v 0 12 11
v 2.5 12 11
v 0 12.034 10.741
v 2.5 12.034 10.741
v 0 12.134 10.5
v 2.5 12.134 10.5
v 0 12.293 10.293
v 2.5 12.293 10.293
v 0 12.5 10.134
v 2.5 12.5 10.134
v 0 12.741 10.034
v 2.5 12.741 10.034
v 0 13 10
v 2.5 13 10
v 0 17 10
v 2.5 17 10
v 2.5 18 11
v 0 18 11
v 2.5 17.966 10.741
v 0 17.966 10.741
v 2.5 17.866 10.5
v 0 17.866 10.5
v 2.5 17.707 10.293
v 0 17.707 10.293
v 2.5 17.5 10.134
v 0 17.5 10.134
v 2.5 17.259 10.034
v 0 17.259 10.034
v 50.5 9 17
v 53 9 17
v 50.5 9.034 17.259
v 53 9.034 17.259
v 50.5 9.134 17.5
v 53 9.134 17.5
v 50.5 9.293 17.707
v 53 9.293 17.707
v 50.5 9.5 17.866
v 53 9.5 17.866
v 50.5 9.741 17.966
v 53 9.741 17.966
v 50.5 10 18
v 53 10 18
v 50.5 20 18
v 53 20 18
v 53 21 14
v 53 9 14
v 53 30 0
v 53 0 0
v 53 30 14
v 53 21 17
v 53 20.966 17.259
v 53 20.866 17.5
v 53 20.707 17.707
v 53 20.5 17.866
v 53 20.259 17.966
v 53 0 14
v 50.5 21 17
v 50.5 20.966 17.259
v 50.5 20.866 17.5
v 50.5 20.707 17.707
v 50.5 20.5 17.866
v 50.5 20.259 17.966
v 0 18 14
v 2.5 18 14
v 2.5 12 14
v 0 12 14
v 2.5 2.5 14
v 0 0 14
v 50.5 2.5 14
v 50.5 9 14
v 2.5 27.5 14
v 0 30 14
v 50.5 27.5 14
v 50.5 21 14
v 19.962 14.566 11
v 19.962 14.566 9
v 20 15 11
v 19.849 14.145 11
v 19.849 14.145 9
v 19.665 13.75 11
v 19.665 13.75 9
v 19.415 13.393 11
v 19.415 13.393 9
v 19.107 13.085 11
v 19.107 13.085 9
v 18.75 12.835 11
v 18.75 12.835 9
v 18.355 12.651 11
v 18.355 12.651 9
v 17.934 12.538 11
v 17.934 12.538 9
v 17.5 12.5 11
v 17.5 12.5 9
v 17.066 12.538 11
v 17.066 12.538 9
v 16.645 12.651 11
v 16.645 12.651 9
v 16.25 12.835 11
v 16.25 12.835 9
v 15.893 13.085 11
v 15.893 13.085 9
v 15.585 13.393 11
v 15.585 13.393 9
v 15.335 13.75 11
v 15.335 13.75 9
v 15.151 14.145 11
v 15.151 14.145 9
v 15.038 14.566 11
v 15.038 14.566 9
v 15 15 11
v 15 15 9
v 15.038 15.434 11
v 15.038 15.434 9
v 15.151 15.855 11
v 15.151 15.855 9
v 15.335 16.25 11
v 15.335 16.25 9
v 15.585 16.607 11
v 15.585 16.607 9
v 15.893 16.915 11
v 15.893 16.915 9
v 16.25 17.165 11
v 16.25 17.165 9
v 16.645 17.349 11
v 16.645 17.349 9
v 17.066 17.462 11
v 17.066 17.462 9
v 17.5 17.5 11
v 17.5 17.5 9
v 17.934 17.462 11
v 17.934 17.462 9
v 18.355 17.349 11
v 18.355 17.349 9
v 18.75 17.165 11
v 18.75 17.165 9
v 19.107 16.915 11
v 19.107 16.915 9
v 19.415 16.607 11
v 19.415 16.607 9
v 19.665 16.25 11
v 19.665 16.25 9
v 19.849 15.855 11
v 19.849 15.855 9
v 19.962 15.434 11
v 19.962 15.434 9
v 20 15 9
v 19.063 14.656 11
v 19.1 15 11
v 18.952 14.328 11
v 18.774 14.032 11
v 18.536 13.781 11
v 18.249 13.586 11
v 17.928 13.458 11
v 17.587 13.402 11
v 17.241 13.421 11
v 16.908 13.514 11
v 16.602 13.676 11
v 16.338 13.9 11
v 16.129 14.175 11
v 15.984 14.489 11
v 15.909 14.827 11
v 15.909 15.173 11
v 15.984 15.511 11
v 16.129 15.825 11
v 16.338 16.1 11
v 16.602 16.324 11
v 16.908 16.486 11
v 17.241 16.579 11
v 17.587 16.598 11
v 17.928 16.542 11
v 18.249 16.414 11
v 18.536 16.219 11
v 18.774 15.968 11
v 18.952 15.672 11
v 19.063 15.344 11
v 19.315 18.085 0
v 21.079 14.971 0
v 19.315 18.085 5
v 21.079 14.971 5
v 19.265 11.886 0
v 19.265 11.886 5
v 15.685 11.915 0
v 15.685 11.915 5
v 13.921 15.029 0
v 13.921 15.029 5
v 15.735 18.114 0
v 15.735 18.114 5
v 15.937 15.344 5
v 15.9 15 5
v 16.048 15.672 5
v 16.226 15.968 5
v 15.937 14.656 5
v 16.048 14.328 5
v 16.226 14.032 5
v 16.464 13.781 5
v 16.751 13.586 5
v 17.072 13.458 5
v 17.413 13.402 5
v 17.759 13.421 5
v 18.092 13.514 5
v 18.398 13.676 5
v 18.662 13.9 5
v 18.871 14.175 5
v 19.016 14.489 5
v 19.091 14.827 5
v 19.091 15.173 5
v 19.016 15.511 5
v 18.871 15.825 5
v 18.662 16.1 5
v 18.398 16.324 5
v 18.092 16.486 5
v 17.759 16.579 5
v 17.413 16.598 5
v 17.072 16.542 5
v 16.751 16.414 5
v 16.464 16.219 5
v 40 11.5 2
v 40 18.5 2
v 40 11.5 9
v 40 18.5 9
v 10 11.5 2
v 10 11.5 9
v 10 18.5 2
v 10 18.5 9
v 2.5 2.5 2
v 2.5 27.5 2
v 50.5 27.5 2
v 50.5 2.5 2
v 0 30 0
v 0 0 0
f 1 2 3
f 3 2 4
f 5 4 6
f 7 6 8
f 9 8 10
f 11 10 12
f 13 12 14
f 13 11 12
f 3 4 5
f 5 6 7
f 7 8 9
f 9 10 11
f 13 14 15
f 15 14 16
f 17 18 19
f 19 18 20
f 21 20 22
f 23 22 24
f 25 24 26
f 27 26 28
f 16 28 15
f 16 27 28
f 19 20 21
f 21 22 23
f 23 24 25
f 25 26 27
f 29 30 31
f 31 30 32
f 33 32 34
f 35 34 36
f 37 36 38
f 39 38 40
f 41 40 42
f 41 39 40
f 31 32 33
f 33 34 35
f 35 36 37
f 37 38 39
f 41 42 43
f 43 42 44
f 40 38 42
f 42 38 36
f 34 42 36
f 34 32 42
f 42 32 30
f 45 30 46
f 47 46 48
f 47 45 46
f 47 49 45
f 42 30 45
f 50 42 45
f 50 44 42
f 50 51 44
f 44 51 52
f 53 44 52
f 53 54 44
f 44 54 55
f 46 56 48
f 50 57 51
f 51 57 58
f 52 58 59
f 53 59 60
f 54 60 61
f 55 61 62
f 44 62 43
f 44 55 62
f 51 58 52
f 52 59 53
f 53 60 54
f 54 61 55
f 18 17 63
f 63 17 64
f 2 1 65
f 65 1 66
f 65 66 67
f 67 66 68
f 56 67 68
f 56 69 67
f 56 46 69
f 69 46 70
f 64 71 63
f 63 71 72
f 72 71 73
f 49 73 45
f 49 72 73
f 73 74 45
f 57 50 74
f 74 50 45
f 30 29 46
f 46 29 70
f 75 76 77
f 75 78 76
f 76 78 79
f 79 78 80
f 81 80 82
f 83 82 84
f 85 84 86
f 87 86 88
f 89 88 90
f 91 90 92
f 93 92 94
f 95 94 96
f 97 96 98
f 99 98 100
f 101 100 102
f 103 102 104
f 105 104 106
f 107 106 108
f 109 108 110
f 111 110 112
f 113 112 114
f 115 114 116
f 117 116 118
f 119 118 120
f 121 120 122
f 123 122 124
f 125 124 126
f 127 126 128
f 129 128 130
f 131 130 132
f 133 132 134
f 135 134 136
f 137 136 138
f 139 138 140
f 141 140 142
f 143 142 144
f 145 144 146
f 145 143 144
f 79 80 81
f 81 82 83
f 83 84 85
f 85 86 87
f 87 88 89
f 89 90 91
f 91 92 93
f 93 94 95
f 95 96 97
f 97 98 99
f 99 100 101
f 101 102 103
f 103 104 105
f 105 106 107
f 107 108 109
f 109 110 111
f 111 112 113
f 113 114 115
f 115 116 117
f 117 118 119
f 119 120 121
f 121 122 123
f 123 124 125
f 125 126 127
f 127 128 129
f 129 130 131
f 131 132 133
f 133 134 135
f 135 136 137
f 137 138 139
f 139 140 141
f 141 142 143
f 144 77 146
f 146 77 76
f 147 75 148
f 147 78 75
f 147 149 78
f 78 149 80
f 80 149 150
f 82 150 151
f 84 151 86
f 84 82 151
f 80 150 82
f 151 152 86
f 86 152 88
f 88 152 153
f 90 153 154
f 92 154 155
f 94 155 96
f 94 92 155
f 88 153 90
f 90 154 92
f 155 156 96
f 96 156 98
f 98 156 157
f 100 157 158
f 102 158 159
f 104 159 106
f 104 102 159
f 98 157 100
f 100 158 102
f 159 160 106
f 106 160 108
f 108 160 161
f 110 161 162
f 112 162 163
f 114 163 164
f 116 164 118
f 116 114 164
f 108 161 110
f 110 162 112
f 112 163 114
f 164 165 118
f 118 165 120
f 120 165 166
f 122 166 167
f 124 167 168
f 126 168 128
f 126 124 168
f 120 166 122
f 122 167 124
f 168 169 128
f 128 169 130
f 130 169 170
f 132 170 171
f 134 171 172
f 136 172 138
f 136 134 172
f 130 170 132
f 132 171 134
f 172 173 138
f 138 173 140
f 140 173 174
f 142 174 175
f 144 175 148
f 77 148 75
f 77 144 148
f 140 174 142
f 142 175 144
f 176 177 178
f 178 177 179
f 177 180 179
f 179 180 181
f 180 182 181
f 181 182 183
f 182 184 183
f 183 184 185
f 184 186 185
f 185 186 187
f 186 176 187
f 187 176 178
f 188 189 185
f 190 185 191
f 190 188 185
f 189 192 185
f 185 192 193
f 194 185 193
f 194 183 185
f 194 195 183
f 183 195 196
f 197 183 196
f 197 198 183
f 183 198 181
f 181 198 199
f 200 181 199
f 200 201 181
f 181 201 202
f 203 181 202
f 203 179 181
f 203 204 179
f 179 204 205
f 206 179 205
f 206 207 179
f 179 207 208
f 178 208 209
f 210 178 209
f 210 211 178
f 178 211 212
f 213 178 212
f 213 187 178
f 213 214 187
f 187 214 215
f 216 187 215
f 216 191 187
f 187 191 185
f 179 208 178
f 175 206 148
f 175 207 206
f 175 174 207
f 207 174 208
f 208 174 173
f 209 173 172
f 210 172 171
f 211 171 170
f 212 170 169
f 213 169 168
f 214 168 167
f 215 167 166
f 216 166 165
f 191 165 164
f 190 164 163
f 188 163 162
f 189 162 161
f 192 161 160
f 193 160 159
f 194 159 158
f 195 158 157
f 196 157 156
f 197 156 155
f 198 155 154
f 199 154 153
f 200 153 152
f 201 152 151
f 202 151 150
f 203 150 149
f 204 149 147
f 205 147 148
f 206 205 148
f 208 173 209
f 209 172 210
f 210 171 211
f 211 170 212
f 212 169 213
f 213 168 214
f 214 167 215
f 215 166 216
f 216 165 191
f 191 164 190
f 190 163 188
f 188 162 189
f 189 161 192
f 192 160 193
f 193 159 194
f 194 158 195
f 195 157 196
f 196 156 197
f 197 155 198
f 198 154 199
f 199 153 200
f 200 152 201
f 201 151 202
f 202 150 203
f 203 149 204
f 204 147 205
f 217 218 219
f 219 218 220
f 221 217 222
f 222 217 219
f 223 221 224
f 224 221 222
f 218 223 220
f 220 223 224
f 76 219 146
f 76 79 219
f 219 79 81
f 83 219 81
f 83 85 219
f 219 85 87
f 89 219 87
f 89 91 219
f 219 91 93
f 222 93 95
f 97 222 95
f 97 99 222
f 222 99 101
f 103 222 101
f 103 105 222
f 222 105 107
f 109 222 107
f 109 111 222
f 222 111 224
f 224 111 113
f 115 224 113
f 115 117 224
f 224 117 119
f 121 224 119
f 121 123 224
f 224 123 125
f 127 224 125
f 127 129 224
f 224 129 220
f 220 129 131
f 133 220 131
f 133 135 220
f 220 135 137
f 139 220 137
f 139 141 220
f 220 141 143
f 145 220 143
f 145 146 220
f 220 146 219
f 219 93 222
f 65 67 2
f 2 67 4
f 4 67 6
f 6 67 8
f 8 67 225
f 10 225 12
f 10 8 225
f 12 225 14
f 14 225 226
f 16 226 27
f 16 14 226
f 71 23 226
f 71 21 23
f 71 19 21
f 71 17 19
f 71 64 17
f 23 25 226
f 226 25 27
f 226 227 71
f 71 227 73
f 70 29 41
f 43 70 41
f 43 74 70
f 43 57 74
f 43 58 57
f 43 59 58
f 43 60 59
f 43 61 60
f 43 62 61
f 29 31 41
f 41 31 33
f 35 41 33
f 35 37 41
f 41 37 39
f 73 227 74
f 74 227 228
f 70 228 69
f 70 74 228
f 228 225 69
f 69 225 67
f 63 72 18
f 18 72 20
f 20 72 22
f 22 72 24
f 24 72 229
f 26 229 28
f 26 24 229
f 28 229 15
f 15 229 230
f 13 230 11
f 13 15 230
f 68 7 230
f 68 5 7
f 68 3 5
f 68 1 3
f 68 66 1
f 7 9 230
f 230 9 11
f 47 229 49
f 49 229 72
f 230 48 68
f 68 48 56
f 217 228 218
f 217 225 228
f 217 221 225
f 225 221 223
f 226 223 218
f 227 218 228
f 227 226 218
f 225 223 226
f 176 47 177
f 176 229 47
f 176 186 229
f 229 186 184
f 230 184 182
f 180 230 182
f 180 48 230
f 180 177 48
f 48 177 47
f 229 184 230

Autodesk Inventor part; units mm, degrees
ref_plane "YZ Plane" through (0, 0, 0) normal (1, 0, 0) x (0, 1, 0)
ref_plane "XZ Plane" through (0, 0, 0) normal (0, 1, 0) x (-1, 0, 0)
ref_plane "XY Plane" through (0, 0, 0) normal (0, 0, 1) x (1, 0, 0)
sketch "Skizze1" plane through (0, 0, 0) normal (0, 0, 1) x (1, 0, 0)
  line L0 (0, 0) -> (53, 0)
  line L1 (53, 0) -> (53, 30)
  line L2 (53, 30) -> (0, 30)
  line L3 (0, 30) -> (0, 0)
  dimension "d0" = 30
  dimension "d1" = 53
extrude "Extrusion1" add sketch "Skizze1" along normal blind 2
sketch "Skizze2" plane through (0, 0, 2) normal (0, 0, 1) x (1, 0, 0)
  line L0 (0, 0) -> (53, 0)
  line L1 (53, 0) -> (53, 30)
  line L2 (53, 30) -> (0, 30)
  line L3 (0, 30) -> (0, 0)
  line L4 (2.5, 2.5) -> (50.5, 2.5)
  line L5 (50.5, 2.5) -> (50.5, 27.5)
  line L6 (50.5, 27.5) -> (2.5, 27.5)
  line L7 (2.5, 27.5) -> (2.5, 2.5)
  dimension "d4" = 25
  dimension "d5" = 48
  dimension "d6" = 2.5
  dimension "d7" = 2.5
  dimension "d8" = 2.5
  dimension "d9" = 2.5
extrude "Extrusion2" add sketch "Skizze2" along normal blind 12
sketch "Skizze3" plane through (0, 0, 2) normal (0, 0, 1) x (1, 0, 0)
  line L0 (10, 18.5) -> (40, 18.5)
  line L1 (40, 18.5) -> (40, 11.5)
  line L2 (40, 11.5) -> (10, 11.5)
  line L3 (10, 11.5) -> (10, 18.5)
  line L4 (0, 30) -> (0, 0) projected
  line L5 (50.5, 27.5) -> (2.5, 27.5) projected
  line L6 (2.5, 2.5) -> (50.5, 2.5) projected
  dimension "d12" = 10
  dimension "d13" = 30
  dimension "d14" = 7
  dimension "d15" = 9
  dimension "d16" = 9
extrude "Extrusion3" add sketch "Skizze3" along normal blind 7
hole "Bohrung1" at (17.5, 15, 9) direction (0, 0, -1) diameter 3.2 end through all
sketch "Skizze4" plane through (0, 0, 0) normal (0, 0, -1) x (-1, 0, 0)
  line L0 (-19.3149, 18.0854) -> (-15.7355, 18.1144)
  line L1 (-15.7355, 18.1144) -> (-13.9205, 15.0291)
  line L2 (-13.9205, 15.0291) -> (-15.6851, 11.9146)
  line L3 (-15.6851, 11.9146) -> (-19.2645, 11.8856)
  line L4 (-19.2645, 11.8856) -> (-21.0795, 14.9709)
  line L5 (-21.0795, 14.9709) -> (-19.3149, 18.0854)
  line L6 (-2.5, 2.5) -> (-50.5, 2.5) projected
  line L7 (-2.5, 27.5) -> (-2.5, 2.5) projected
  point P0 (0, 0)
  point P1 (-17.5, 15)
  dimension "d28" = 6.2
  dimension "d29" = 12.5
  dimension "d30" = 15
extrude "Extrusion4" cut sketch "Skizze4" against normal blind 5
sketch "Skizze5" plane through (0, 0, 9) normal (0, 0, 1) x (1, 0, 0)
  circle A0 centre (17.5, 15) radius 2.5
  line L0 (2.5, 2.5) -> (2.5, 27.5) projected
  line L1 (40, 18.5) -> (10, 18.5) projected
  circle A1 centre (17.5, 15) radius 1.6
  point P0 (0, 0)
  dimension "d33" = 5
  dimension "d34" = 15
  dimension "d35" = 3.5
extrude "Extrusion5" add sketch "Skizze5" along normal blind 2
sketch "Skizze6" plane through (0, 0, 14) normal (0, 0, 1) x (1, 0, 0)
  line L0 (50.5, 27.5) -> (50.5, 2.5) projected
  line L1 (53, 0) -> (53, 30) projected
  line L2 (50.5, 9) -> (53, 9)
  line L3 (53, 9) -> (53, 21)
  line L4 (53, 21) -> (50.5, 21)
  line L5 (50.5, 21) -> (50.5, 9)
  line L6 (0, 0) -> (53, 0) projected
  line L7 (53, 30) -> (0, 30) projected
  dimension "d38" = 12
  dimension "d39" = 9
  dimension "d40" = 9
extrude "Extrusion6" add sketch "Skizze6" along normal blind 4
sketch "Skizze7" plane through (0, 0, 14) normal (0, 0, 1) x (1, 0, 0)
  line L0 (0, 30) -> (0, 0) projected
  line L1 (2.5, 2.5) -> (2.5, 27.5) projected
  line L2 (0, 12) -> (2.5, 12)
  line L3 (2.5, 12) -> (2.5, 18)
  line L4 (2.5, 18) -> (0, 18)
  line L5 (0, 18) -> (0, 12)
  line L6 (0, 0) -> (53, 0) projected
  line L7 (53, 30) -> (0, 30) projected
  dimension "d43" = 6
  dimension "d44" = 12
  dimension "d45" = 12
extrude "Extrusion7" cut sketch "Skizze7" against normal blind 4
fillet "Rundung1" radius 1 4 edges at (51.75, 21, 18) (51.75, 9, 18) (1.25, 18, 10) (1.25, 12, 10)
properties part number "V2_unterteil"
